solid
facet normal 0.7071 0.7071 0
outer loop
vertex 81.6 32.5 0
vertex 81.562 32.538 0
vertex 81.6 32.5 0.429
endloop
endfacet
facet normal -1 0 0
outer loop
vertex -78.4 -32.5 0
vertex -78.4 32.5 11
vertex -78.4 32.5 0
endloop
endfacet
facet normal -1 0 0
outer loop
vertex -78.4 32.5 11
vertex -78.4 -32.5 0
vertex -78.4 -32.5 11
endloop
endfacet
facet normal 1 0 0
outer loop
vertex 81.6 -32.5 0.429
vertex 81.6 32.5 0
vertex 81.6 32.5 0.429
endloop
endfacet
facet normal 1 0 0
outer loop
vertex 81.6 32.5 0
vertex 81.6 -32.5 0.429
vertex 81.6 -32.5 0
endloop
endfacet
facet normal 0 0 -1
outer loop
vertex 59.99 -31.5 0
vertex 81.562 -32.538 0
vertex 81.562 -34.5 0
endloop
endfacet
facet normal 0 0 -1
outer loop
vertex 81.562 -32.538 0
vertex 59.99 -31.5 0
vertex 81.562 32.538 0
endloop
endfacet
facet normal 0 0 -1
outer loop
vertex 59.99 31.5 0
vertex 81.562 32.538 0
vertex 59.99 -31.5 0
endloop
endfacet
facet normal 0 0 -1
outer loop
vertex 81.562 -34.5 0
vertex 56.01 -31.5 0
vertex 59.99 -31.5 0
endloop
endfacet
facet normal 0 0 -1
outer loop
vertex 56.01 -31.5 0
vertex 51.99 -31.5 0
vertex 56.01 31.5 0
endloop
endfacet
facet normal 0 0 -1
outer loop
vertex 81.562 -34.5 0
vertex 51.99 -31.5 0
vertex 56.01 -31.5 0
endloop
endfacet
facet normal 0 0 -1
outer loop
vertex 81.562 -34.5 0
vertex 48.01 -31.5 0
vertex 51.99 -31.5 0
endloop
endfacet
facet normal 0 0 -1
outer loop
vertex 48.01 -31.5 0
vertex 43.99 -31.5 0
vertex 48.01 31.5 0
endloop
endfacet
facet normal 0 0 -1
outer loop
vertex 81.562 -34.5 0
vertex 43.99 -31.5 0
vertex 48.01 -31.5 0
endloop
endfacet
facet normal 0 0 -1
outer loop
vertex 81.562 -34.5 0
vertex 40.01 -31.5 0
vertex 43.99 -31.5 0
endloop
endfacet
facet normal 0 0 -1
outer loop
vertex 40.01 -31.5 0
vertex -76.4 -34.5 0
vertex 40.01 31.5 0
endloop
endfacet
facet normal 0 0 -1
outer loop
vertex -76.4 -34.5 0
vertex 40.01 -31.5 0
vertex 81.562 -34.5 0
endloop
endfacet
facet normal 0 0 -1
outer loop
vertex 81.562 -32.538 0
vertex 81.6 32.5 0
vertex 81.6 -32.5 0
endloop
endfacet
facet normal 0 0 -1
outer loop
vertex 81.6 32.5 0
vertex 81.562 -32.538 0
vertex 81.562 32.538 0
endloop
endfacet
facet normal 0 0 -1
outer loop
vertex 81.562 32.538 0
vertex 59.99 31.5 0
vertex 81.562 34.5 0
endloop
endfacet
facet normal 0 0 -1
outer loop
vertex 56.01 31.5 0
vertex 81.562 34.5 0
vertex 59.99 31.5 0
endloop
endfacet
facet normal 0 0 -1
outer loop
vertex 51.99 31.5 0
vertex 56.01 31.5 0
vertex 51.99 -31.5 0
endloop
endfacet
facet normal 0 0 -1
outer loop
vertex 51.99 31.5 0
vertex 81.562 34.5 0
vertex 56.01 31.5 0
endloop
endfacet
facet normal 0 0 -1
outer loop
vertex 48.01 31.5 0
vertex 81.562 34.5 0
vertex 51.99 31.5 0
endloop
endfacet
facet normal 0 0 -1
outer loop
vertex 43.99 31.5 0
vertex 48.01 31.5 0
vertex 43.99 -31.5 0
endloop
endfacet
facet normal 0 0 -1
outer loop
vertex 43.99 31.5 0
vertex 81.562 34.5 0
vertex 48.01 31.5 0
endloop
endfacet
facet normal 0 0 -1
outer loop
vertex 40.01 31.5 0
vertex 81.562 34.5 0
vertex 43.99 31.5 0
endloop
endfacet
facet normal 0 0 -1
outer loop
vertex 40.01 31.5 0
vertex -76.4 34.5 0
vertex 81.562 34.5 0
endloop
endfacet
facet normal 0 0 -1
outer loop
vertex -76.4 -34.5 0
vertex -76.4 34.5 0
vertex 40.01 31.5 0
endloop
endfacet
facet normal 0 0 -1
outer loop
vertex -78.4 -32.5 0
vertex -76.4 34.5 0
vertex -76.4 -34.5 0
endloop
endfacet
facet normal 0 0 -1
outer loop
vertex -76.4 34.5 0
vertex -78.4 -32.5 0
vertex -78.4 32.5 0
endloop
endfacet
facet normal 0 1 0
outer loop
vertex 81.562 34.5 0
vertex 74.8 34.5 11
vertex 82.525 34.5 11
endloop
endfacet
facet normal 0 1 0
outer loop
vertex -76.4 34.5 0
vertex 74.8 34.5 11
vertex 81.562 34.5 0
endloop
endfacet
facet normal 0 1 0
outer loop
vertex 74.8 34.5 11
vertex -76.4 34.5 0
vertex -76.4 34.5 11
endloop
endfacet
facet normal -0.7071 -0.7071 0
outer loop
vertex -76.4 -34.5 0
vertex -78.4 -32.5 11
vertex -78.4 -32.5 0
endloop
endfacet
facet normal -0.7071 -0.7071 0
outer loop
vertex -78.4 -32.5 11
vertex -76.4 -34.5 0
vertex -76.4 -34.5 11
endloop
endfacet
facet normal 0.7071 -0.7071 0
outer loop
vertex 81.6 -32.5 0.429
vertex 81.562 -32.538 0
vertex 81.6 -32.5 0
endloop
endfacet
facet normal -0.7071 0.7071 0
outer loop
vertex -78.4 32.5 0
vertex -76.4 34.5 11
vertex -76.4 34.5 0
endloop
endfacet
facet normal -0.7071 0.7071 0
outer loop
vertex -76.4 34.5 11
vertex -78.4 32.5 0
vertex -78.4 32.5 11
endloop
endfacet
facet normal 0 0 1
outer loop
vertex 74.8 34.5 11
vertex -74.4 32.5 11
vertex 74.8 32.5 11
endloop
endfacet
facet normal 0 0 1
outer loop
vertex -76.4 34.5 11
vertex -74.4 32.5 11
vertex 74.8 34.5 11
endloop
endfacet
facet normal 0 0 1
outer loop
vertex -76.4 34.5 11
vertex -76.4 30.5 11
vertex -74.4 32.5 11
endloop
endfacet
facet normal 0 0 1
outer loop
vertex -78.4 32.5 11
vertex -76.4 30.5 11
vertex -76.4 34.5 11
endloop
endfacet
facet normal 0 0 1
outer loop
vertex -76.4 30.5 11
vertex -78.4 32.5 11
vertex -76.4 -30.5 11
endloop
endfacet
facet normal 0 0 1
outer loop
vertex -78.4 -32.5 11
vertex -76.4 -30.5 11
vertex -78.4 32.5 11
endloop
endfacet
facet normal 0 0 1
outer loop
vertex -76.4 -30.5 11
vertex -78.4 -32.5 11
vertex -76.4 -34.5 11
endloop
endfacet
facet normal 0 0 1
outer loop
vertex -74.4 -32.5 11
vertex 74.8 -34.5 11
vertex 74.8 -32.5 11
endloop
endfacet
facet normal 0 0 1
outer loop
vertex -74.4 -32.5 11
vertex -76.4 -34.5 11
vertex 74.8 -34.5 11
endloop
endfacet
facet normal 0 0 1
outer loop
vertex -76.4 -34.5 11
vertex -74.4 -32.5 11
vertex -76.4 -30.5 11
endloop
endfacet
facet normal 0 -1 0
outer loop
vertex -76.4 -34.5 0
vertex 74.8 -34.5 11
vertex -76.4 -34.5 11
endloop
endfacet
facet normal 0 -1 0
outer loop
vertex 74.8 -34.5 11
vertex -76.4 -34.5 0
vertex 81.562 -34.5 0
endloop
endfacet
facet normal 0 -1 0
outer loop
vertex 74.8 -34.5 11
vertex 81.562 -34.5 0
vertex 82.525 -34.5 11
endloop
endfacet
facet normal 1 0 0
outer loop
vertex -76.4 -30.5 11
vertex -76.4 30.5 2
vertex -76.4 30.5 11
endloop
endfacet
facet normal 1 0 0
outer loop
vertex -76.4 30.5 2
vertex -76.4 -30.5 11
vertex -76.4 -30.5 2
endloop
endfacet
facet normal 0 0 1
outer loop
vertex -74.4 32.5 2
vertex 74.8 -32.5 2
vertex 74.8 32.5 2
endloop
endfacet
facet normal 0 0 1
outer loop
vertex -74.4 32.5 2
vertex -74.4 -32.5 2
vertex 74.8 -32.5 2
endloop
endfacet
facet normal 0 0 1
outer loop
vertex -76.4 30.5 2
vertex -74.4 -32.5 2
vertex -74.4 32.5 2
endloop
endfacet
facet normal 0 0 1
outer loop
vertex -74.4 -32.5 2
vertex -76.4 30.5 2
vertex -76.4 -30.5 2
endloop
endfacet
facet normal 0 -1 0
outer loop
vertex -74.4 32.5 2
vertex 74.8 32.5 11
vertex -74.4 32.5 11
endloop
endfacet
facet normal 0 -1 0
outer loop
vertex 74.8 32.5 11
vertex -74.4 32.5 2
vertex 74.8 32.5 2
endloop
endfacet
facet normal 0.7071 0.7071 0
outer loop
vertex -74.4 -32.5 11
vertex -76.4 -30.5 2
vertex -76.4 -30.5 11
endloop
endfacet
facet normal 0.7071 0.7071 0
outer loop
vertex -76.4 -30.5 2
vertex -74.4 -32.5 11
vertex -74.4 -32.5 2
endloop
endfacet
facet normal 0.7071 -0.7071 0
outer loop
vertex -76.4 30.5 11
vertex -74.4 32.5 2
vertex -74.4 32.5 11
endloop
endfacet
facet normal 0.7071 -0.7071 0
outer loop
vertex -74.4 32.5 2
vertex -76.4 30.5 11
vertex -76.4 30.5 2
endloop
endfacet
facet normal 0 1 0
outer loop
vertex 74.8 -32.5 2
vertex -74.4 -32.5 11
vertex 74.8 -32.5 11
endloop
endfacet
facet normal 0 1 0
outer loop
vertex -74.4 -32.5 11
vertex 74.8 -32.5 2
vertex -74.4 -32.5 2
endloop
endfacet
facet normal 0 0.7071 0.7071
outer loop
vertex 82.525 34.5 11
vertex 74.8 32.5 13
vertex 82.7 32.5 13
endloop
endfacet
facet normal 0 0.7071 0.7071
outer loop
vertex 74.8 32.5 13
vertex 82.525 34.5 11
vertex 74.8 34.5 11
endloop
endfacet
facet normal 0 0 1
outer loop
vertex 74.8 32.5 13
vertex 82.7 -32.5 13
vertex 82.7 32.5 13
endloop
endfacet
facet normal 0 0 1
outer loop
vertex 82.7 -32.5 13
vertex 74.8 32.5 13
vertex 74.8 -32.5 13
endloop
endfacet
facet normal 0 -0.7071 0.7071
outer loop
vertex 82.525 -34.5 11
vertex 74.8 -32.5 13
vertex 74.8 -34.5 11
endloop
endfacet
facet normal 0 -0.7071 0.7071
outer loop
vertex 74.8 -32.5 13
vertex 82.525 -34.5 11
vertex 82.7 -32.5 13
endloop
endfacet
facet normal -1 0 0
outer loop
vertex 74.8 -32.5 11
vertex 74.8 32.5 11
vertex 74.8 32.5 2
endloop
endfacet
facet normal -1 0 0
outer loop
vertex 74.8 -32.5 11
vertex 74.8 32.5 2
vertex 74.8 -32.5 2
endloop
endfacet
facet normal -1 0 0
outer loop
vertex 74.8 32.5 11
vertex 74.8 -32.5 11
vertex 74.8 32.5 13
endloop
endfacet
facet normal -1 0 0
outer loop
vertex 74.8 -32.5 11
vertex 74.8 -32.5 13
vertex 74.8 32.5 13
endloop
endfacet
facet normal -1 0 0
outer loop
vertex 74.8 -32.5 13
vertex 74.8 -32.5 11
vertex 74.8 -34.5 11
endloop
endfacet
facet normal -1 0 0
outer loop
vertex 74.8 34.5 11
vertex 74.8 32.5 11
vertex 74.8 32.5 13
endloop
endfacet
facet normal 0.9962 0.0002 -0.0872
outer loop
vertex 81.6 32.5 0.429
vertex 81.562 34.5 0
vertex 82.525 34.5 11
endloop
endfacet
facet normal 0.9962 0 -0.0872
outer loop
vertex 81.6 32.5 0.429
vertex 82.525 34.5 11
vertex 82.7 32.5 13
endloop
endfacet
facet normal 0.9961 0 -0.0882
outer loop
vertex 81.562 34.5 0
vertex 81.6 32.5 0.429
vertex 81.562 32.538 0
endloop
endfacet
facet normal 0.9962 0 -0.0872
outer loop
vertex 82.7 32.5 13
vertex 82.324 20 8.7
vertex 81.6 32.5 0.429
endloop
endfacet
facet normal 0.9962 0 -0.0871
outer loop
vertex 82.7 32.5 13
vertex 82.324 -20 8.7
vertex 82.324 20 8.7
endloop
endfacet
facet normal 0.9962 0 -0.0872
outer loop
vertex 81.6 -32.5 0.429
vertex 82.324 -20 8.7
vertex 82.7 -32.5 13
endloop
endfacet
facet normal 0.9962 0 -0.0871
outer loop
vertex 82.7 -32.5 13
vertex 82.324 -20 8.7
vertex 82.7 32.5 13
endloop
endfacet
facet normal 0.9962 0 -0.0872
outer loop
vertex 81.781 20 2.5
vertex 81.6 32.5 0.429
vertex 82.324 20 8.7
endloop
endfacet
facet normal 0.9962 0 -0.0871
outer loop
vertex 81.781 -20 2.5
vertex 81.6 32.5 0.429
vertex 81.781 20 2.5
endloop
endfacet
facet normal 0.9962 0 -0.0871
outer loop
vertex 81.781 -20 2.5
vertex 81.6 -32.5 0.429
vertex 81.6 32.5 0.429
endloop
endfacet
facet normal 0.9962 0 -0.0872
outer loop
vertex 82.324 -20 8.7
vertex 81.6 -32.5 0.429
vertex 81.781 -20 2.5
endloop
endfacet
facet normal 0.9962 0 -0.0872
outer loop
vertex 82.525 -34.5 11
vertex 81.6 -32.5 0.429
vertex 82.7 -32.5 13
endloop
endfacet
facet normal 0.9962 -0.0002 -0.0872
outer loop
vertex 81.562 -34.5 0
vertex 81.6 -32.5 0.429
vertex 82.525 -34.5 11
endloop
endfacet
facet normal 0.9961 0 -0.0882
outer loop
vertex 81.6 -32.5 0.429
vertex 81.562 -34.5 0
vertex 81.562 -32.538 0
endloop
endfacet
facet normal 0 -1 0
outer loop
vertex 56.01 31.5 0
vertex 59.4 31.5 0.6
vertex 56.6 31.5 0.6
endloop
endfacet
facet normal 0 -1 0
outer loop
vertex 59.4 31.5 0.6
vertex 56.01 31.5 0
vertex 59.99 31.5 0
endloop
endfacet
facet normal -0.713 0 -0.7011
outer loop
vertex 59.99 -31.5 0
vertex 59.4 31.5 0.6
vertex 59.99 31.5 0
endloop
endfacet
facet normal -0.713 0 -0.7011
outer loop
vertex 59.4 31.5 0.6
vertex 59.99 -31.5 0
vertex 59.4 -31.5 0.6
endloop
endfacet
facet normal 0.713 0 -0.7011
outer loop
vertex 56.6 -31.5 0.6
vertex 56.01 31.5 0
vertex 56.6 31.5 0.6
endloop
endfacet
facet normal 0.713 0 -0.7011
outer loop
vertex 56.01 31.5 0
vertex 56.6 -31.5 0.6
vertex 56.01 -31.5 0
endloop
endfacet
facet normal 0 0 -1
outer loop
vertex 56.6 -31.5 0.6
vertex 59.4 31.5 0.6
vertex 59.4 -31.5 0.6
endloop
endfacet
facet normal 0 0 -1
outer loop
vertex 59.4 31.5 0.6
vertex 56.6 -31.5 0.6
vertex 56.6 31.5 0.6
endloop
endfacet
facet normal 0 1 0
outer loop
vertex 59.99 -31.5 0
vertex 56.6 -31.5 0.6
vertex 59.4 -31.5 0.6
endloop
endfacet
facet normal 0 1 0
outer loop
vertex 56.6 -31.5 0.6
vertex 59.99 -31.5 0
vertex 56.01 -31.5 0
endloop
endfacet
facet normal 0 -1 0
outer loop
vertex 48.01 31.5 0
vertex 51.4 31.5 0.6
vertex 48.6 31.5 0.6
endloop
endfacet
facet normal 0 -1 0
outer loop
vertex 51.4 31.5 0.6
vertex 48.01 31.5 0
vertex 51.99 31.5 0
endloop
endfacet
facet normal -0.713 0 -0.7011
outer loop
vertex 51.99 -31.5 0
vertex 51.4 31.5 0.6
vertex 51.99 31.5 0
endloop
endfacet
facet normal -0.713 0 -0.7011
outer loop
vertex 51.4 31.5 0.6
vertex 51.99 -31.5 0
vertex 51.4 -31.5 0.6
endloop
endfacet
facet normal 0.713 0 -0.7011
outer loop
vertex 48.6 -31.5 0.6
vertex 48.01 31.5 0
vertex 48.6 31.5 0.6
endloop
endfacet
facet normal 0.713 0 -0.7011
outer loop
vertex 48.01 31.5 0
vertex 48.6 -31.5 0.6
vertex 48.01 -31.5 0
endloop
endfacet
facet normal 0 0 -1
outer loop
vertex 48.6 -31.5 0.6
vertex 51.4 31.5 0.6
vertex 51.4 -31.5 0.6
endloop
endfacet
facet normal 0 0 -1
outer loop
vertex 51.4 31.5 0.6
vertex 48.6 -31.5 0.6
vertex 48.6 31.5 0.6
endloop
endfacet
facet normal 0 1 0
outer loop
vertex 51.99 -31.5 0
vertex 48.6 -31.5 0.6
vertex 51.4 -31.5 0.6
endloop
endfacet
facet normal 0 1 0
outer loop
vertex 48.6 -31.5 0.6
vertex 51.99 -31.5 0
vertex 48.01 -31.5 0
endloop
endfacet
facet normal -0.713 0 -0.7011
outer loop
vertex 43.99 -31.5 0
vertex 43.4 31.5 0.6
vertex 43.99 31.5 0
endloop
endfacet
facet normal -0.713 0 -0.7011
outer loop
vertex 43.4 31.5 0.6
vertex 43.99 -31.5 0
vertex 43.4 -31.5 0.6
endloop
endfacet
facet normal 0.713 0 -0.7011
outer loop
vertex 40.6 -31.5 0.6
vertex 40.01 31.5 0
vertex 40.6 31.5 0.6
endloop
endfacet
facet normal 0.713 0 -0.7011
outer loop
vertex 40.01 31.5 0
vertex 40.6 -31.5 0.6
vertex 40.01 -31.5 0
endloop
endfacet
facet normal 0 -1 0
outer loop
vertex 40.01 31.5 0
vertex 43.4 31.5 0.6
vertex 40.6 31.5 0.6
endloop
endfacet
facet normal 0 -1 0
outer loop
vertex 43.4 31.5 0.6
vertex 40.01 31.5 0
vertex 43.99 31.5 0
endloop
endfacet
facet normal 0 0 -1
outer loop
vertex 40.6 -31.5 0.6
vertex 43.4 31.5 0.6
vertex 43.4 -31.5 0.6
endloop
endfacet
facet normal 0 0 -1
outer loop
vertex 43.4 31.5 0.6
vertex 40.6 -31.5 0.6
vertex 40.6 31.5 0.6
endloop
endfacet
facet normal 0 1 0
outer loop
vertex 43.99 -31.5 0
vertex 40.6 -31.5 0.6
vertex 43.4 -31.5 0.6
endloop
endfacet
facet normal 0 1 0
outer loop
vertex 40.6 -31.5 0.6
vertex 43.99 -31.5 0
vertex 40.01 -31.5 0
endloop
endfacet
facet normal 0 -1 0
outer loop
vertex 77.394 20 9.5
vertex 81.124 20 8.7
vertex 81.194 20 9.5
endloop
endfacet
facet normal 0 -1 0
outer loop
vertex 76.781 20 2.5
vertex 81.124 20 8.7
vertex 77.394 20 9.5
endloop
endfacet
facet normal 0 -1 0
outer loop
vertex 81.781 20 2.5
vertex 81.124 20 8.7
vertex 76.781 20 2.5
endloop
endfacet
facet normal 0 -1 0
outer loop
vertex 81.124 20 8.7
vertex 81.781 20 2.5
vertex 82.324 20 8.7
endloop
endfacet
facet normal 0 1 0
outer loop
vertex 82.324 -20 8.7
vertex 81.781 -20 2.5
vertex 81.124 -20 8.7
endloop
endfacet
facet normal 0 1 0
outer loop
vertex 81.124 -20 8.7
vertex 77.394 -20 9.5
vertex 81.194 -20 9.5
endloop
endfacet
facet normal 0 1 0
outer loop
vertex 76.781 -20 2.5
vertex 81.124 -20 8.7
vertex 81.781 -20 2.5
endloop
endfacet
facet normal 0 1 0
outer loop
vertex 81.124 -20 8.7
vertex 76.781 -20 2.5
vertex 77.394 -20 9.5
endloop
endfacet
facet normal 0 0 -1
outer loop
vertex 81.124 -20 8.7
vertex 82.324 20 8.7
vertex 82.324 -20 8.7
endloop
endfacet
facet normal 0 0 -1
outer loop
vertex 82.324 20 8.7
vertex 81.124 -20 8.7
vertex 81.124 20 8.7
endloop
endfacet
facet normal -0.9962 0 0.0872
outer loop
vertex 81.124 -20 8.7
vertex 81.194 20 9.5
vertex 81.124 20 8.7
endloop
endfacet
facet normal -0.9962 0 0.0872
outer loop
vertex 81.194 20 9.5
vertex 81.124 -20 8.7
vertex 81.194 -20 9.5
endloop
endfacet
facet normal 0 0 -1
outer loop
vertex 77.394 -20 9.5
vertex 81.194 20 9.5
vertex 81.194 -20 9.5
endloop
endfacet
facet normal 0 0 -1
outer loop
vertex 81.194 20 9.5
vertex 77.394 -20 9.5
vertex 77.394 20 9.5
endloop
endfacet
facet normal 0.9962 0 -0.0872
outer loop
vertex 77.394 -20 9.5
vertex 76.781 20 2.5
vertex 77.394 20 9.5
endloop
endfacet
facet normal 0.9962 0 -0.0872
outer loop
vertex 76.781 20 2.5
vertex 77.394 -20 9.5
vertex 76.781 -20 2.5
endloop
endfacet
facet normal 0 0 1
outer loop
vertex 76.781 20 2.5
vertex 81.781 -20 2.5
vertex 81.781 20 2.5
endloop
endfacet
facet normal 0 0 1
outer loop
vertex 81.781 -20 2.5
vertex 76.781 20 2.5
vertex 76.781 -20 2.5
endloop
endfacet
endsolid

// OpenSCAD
// Pull-out drip tray only — prints as modelled, flat on the bed, basin
// up. See marsh_repot_022.scad.
include <marsh_repot_022.scad>
part = "tray";
